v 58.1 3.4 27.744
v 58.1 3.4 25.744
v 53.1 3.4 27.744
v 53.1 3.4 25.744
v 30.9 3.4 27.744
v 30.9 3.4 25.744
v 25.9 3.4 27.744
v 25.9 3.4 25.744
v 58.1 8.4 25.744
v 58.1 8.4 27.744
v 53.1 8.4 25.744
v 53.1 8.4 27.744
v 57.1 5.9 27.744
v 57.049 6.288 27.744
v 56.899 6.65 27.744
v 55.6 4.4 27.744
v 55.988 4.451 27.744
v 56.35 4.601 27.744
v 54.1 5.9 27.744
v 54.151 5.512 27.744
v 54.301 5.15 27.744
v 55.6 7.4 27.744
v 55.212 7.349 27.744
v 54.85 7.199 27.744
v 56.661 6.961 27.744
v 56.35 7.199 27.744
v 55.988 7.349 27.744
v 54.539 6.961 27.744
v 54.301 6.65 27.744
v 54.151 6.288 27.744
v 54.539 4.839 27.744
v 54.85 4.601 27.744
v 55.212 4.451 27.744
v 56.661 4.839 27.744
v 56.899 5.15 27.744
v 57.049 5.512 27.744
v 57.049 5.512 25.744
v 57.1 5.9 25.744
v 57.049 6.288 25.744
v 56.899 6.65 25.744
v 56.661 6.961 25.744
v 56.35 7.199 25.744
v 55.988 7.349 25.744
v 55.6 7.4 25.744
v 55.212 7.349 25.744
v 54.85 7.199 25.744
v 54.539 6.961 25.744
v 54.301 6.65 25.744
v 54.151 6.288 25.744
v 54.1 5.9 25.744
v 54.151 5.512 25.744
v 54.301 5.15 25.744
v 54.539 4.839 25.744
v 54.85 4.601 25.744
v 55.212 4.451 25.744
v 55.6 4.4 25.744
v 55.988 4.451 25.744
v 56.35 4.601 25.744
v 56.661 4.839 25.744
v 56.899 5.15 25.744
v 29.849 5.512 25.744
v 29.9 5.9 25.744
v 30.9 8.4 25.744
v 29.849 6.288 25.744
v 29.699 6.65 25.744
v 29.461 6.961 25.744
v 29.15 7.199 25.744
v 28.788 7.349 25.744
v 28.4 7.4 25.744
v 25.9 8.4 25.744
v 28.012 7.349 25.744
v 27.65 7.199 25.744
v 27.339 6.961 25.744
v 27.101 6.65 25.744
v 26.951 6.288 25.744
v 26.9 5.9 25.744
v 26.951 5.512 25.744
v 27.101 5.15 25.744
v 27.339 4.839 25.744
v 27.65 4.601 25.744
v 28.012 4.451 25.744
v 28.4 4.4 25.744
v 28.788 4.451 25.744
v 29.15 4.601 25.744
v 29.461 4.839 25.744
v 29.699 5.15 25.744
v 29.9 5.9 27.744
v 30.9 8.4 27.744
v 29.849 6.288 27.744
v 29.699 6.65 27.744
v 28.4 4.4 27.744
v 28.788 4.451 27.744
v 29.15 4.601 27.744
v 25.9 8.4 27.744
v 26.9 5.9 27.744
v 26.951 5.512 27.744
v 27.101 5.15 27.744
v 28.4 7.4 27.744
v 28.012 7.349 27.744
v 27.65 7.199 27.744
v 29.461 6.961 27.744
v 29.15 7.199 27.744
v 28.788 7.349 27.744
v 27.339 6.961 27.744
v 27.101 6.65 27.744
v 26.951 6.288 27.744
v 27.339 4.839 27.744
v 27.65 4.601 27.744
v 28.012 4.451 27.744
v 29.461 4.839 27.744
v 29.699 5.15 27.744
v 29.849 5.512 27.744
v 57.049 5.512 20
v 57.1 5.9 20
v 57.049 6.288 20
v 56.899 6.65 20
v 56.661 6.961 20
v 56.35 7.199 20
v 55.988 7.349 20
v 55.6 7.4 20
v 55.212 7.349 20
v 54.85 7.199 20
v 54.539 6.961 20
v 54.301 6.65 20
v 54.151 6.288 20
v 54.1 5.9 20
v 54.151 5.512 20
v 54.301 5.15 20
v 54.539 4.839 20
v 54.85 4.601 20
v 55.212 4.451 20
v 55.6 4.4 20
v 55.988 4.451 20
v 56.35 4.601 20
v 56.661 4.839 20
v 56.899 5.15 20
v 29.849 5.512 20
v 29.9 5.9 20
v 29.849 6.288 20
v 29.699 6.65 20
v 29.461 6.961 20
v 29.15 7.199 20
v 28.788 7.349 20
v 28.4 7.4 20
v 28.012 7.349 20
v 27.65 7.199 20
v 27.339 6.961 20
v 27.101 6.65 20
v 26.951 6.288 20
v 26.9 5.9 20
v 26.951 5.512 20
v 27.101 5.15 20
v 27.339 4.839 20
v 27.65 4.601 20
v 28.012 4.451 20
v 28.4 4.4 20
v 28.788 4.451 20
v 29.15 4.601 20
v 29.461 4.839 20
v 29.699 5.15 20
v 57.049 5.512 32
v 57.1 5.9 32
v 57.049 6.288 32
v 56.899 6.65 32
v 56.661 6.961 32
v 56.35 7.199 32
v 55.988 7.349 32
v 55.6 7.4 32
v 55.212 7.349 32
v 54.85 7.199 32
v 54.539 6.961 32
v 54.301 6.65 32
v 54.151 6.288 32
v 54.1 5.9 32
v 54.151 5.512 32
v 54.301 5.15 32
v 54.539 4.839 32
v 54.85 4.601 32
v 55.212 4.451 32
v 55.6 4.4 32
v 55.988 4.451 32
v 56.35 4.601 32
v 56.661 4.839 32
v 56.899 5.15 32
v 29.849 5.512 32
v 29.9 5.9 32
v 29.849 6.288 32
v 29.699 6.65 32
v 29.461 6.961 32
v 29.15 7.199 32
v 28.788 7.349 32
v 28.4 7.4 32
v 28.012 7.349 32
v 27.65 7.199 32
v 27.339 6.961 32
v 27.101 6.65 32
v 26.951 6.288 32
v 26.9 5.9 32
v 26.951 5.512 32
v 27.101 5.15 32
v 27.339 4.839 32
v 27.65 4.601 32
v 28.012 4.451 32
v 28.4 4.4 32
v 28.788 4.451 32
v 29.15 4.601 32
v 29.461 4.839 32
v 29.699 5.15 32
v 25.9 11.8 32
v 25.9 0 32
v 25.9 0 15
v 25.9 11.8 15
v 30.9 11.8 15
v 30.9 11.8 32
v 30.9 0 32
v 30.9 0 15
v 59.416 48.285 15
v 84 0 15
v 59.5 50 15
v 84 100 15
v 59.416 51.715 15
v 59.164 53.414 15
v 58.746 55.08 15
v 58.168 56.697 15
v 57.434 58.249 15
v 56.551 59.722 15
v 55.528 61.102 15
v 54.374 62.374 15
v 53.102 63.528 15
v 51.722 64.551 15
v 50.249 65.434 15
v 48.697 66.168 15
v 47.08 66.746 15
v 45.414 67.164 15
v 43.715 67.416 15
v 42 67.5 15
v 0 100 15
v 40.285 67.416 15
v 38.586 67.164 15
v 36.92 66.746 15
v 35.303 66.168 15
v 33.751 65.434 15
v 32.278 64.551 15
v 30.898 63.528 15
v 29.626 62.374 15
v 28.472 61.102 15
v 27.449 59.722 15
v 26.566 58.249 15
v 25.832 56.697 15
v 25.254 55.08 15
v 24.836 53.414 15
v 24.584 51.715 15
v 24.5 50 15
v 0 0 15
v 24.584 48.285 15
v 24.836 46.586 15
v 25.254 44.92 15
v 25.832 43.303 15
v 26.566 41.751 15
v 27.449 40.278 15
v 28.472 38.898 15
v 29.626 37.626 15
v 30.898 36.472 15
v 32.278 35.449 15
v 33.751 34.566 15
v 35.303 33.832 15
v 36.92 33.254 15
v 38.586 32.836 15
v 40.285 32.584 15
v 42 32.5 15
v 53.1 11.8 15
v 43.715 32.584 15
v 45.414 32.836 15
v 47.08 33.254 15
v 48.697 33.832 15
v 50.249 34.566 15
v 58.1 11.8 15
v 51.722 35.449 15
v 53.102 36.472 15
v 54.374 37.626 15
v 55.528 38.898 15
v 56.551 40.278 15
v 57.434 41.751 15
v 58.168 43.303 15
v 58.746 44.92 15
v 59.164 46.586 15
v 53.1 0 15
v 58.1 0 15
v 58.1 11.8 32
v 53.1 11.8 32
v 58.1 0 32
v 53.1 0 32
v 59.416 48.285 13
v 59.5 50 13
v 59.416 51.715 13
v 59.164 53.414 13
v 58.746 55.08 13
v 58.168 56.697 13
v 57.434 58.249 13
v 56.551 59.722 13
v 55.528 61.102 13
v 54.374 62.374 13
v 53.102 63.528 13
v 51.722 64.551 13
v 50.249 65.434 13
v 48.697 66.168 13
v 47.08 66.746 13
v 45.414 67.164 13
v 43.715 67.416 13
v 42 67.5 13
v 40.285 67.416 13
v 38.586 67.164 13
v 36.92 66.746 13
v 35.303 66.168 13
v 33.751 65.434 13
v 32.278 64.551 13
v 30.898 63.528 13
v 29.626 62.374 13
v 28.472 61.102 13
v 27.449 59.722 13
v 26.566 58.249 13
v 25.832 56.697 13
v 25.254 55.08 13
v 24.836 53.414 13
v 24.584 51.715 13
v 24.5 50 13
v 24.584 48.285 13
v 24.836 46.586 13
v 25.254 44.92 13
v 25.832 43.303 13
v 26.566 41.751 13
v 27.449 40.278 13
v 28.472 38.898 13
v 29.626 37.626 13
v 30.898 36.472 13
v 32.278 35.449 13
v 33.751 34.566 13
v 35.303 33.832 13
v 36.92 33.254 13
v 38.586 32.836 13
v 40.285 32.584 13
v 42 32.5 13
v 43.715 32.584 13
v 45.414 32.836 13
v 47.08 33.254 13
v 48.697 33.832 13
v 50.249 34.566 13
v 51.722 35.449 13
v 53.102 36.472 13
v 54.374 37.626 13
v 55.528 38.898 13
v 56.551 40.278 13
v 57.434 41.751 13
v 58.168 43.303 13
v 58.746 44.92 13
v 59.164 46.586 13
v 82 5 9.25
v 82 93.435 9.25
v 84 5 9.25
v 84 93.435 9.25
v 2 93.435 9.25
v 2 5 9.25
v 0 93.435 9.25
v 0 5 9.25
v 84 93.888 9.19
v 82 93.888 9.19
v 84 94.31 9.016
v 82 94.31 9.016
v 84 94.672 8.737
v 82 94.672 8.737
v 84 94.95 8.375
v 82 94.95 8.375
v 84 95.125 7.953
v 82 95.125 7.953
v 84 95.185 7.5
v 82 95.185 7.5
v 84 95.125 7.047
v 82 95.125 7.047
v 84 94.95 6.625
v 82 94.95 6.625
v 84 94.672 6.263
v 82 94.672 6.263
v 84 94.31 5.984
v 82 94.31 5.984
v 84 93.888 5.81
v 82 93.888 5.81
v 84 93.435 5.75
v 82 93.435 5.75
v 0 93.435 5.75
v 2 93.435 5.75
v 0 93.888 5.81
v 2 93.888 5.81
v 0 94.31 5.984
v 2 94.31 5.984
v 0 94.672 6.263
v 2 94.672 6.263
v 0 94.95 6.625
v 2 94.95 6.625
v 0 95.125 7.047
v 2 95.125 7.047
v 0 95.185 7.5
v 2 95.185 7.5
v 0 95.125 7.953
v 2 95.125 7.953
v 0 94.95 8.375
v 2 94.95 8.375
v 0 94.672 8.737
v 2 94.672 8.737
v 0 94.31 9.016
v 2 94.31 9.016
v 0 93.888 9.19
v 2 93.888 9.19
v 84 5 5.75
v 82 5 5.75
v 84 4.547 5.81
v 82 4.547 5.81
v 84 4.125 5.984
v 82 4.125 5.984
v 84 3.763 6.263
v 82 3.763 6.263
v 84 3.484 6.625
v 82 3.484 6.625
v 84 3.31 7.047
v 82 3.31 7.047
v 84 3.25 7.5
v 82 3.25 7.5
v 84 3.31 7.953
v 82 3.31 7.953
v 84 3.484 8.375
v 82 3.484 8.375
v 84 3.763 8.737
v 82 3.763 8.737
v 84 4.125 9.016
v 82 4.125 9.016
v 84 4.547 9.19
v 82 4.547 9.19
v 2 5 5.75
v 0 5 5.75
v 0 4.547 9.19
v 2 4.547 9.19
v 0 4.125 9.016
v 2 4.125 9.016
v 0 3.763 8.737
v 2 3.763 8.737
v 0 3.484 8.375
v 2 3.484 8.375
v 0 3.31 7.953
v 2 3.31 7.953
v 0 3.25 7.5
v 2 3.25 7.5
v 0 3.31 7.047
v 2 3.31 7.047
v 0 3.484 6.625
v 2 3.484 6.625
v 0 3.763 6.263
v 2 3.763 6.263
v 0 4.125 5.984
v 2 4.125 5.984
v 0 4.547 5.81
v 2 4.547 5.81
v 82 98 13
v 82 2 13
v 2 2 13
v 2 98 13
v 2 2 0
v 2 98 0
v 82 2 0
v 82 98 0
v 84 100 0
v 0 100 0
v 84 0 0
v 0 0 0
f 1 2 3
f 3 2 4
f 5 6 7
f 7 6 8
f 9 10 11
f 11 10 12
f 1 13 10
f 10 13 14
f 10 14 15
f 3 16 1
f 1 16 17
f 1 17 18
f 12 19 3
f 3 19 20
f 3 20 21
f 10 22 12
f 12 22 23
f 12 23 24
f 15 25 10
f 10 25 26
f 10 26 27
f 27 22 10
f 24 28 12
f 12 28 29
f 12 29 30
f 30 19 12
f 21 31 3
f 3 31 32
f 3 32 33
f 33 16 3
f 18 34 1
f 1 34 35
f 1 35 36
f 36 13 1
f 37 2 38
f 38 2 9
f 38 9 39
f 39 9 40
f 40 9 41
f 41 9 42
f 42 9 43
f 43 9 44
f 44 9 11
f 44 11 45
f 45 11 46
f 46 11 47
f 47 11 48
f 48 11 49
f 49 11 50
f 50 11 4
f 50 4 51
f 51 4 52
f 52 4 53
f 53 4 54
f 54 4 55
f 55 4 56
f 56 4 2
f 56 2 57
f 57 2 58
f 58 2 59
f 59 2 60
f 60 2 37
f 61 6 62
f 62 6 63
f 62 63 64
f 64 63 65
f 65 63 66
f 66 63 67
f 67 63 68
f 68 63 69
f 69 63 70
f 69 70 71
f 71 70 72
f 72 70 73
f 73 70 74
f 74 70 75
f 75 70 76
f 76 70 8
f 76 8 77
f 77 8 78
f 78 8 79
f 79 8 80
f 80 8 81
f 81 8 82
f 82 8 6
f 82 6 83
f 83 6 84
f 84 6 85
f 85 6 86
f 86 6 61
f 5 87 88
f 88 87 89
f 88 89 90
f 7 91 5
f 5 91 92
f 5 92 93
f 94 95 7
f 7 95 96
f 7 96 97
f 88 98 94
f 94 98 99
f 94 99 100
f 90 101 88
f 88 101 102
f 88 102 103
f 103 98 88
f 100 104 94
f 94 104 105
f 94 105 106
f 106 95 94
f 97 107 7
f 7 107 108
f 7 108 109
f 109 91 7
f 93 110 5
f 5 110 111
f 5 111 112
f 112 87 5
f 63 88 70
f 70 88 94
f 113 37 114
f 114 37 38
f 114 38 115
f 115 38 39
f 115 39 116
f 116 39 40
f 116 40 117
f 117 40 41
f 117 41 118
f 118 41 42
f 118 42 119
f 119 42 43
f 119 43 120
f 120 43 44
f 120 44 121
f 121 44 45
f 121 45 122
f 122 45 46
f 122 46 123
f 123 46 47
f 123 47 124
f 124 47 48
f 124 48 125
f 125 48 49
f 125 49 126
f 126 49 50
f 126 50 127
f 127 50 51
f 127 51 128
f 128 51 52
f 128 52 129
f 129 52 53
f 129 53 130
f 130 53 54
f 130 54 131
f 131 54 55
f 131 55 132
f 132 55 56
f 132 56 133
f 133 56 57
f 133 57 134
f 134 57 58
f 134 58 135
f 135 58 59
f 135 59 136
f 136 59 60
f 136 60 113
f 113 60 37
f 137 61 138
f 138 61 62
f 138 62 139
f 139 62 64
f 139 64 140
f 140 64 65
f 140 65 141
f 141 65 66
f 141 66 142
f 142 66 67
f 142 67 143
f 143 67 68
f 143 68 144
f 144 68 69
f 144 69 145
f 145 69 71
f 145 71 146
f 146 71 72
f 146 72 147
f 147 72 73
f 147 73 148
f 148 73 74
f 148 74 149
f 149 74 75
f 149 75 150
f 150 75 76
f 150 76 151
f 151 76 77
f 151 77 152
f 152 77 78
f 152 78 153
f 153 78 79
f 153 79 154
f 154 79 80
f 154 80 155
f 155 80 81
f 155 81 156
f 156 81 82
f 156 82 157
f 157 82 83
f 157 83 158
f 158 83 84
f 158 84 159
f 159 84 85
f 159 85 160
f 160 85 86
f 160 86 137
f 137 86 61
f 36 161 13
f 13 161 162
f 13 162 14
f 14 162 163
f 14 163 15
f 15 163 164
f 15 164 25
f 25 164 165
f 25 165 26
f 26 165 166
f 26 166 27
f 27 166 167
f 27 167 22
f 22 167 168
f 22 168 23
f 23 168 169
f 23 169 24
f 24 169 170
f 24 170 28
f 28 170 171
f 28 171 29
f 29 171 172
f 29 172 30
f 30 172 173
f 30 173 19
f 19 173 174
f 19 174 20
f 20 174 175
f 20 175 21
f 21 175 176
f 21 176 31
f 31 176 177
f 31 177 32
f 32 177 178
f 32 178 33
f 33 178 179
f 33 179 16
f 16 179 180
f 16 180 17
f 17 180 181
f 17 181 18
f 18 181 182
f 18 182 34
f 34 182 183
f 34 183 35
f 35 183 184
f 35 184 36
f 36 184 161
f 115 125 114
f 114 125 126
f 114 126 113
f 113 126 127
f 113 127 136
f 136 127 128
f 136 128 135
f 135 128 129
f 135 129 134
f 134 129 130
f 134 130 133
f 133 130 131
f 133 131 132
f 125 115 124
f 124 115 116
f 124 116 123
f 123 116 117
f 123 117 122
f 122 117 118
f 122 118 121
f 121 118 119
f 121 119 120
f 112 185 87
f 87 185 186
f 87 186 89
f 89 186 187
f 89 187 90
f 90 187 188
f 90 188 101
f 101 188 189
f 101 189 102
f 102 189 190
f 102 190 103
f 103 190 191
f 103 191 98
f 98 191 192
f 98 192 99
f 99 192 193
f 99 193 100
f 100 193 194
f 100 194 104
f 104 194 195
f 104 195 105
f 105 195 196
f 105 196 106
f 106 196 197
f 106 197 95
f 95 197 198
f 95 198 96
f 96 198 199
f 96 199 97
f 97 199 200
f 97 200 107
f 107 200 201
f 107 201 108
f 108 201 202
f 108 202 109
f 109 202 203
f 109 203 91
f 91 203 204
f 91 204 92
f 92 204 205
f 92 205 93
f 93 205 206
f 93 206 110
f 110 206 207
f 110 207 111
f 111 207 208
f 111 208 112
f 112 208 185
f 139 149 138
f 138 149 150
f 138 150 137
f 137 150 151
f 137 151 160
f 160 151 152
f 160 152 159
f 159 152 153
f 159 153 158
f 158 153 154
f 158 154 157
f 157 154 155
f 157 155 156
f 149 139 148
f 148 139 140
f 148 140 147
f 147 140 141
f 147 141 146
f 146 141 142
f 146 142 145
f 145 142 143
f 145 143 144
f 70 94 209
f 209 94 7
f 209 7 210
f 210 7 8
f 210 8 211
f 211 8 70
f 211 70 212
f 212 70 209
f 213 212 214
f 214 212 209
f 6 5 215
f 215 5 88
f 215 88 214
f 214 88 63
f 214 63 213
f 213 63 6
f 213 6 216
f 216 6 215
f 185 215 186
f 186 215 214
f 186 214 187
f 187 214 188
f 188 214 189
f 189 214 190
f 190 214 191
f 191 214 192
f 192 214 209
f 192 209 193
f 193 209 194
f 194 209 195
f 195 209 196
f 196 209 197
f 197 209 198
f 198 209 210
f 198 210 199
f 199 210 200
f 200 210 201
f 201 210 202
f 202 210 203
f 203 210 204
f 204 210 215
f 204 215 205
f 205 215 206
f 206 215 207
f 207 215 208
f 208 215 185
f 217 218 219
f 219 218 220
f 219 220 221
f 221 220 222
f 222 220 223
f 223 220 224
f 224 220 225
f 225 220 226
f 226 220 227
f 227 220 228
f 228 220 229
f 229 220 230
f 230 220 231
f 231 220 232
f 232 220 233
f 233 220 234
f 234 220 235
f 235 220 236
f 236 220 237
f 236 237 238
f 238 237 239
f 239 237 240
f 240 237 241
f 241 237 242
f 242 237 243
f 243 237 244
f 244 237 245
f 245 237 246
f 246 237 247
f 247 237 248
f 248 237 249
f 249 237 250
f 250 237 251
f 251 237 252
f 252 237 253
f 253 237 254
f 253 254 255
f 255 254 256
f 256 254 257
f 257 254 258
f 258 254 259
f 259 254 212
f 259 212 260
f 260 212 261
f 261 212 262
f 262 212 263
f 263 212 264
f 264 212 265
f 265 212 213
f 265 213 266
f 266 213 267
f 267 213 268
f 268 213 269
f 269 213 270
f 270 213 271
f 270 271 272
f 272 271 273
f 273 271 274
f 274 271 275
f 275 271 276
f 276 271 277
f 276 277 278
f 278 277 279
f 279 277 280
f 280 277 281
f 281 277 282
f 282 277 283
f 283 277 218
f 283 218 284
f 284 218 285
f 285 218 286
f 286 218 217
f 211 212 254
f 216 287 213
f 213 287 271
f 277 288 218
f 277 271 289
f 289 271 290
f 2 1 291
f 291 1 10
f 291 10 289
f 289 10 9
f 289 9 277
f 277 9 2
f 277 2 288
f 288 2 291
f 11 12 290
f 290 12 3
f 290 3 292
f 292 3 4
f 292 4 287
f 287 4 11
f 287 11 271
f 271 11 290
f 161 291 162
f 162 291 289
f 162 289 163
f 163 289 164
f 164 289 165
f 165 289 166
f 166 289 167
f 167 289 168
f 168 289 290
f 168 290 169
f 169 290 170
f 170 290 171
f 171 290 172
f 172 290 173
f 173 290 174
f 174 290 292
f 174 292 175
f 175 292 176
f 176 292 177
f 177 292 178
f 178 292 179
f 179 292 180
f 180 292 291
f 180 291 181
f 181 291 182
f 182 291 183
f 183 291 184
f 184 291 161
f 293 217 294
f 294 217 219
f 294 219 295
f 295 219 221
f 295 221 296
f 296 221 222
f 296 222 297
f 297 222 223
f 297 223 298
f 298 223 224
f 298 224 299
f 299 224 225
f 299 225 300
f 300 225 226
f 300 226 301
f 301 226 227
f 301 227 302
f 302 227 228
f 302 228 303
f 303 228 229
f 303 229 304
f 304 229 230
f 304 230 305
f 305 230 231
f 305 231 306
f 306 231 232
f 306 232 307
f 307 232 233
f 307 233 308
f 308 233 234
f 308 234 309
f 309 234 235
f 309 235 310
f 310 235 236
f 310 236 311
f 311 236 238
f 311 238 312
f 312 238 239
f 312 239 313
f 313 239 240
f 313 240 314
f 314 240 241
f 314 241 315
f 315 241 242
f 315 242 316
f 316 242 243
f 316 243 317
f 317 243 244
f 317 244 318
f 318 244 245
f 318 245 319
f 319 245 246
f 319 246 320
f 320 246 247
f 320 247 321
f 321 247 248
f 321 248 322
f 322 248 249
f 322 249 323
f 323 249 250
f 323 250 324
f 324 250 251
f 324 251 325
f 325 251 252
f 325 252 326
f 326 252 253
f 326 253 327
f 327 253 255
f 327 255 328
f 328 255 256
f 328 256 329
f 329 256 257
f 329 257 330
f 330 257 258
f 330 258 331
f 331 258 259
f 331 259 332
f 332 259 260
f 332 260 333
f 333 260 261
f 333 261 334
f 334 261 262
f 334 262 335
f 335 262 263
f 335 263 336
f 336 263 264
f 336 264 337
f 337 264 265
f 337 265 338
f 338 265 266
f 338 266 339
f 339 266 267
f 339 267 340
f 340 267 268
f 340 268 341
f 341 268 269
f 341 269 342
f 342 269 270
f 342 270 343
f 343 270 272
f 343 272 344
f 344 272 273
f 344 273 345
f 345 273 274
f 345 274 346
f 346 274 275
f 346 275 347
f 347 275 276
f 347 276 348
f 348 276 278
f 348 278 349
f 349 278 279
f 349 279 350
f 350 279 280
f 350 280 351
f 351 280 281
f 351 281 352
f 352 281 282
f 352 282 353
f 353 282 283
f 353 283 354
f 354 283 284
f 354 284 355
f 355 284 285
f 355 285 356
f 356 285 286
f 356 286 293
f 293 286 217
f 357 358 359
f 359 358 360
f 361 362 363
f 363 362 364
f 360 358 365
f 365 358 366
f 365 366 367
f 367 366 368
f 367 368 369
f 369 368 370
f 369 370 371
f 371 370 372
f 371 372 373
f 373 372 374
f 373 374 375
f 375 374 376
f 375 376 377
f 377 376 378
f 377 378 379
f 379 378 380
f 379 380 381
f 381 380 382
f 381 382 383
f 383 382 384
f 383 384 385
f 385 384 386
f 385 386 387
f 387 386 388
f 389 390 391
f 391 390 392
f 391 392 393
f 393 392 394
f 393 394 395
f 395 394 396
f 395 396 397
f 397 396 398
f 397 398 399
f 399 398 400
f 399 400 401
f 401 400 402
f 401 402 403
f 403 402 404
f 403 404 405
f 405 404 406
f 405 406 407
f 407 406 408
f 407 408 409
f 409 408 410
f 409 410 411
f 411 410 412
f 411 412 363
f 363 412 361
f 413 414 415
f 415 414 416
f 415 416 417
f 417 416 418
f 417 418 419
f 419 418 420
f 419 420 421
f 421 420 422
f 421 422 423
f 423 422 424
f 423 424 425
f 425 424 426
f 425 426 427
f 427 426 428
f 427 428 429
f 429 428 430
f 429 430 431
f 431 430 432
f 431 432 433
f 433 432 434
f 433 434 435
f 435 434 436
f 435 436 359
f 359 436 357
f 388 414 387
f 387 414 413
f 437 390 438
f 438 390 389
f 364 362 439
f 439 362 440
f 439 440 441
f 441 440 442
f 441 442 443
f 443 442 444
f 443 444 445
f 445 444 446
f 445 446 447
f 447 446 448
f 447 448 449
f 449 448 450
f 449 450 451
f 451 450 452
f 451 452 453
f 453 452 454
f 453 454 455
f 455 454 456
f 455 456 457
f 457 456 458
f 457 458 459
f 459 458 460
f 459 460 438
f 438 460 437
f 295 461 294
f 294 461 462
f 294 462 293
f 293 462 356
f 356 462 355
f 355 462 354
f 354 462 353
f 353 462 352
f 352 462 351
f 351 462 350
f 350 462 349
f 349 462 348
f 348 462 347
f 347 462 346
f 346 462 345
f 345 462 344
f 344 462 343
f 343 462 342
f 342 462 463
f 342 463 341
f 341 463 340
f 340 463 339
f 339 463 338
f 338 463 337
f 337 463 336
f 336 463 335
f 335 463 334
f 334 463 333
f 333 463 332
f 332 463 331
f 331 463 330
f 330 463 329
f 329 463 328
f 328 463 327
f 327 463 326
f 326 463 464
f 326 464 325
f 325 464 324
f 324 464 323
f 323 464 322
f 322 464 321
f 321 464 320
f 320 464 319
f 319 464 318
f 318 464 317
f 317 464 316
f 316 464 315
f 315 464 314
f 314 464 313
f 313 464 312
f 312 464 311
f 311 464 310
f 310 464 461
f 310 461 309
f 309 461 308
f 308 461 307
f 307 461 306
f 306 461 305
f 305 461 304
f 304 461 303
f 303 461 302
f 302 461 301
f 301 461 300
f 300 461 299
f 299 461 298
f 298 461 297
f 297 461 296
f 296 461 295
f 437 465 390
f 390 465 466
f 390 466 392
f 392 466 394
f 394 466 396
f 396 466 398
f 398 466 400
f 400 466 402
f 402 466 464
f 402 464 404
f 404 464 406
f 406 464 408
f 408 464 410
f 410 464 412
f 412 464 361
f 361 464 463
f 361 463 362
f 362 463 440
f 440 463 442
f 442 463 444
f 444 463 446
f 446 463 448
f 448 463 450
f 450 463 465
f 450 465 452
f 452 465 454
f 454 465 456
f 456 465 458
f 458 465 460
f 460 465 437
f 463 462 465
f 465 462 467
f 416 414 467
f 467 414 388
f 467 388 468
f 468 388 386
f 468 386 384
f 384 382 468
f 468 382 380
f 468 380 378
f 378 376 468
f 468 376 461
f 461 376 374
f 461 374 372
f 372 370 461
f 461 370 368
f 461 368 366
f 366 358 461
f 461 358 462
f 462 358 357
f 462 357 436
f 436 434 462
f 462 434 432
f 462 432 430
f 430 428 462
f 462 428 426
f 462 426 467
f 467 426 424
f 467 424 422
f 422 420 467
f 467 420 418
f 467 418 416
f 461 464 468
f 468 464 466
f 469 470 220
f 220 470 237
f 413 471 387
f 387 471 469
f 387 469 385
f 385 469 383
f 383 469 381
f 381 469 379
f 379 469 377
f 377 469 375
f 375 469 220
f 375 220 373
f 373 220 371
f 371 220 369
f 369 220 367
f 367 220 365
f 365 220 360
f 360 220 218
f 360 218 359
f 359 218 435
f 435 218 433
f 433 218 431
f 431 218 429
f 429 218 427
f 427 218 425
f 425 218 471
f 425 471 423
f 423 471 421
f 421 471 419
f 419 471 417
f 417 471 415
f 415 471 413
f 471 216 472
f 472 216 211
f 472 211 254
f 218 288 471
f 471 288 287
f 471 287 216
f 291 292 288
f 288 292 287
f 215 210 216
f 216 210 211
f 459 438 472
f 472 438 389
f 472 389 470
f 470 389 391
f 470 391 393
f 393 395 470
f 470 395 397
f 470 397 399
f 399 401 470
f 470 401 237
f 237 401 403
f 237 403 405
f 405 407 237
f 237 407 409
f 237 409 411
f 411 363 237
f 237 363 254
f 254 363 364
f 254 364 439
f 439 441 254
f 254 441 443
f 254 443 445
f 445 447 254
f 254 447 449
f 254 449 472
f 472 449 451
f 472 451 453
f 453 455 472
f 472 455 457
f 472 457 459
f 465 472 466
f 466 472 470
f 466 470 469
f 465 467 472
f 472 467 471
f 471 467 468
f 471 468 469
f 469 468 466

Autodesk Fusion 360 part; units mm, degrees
sketch "Sketch1" plane through (0, 0, 0) normal (0, 0, 1) x (1, 0, 0)
  line L0 (0, 0) -> (84, 0)
  line L1 (84, 0) -> (84, 100)
  line L2 (84, 100) -> (0, 100)
  line L3 (0, 100) -> (0, 0)
  dimension "d1" = 84
  dimension "d2" = 100
extrude "Extrude1" add sketch "Sketch1" along normal blind 15
shell "Shell1" thickness 2 removed faces 1 at (28, 66.6667, 0)
sketch "Sketch2" plane through (84, 0, 0) normal (1, 0, 0) x (0, 1, 0)
  line L0 (0, 0) -> (100, 0)
  line L1 (100, 0) -> (100, 15)
  line L2 (100, 15) -> (0, 15)
  line L3 (0, 15) -> (0, 0)
  line L4 (0, 7.5) -> (5, 7.5)
  line L5 (100, 7.5) -> (98.4347, 7.5)
  line L6 (98.4347, 7.5) -> (93.4347, 7.5)
  circle A0 centre (5, 7.5) radius 1.75
  circle A1 centre (93.4347, 7.5) radius 1.75
  line L7 (5, 9.25) -> (93.4347, 9.25)
  line L8 (5, 5.75) -> (93.4347, 5.75)
  dimension "d6" = 5
  dimension "d7" = 5
  dimension "d8" = 3.5
  dimension "d9" = 3.5
extrude "Extrude2" cut sketch "Sketch2" against normal blind 225 contours A0 | A0 A1 L7 L8 | A1
sketch "Sketch3" plane through (0, 0, 15) normal (0, 0, 1) x (-1, 0, 0)
  line L0 (0, -100) -> (0, 0)
  line L1 (0, 0) -> (-84, 0)
  line L2 (-84, 0) -> (-84, -100)
  line L3 (-84, -100) -> (0, -100)
  circle A0 centre (-42, -50) radius 17.5
  dimension "d12" = 35
extrude "Extrude3" cut sketch "Sketch3" against normal blind 30 contours A0
sketch "Sketch4" plane through (0, 0, 15) normal (0, 0, 1) x (-1, 0, 0)
  circle A0 centre (-42, -50) radius 17.5
  line L0 (0, -100) -> (0, 0)
  line L1 (0, 0) -> (-84, 0)
  line L2 (-84, 0) -> (-84, -100)
  line L3 (-84, -100) -> (0, -100)
  line L4 (-42, 0) -> (-42, -10)
  line L5 (-42, 0) -> (-58.1, 0)
  line L6 (-58.1, 0) -> (-58.1, -11.8)
  line L7 (-58.1, -11.8) -> (-25.9, -11.8)
  line L8 (-25.9, -11.8) -> (-25.9, 0)
  line L9 (-25.9, 0) -> (-30.9, 0)
  line L10 (-30.9, 0) -> (-30.9, -11.8)
  line L11 (-58.1, 0) -> (-58.1, -11.8)
  line L12 (-58.1, -11.8) -> (-53.1, -11.8)
  line L13 (-53.1, -11.8) -> (-53.1, 0)
  dimension "d15" = 16.1
  dimension "d16" = 11.8
  dimension "d17" = 32.2
  dimension "d18" = 5
  dimension "d19" = 5
extrude "Extrude4" add sketch "Sketch4" along normal blind 17 contours L1 L7 L8 L9 L10 | L1 L5 L6 L7 L11 L12 L13
sketch "Sketch5" plane through (0, 0, 32) normal (0, 0, 1) x (-1, 0, 0)
  line L0 (-30.9, 0) -> (-30.9, -11.8)
  line L1 (-30.9, -11.8) -> (-25.9, -11.8)
  line L2 (-25.9, -11.8) -> (-25.9, 0)
  line L3 (-25.9, 0) -> (-30.9, 0)
  circle A0 centre (-28.4, -5.9) radius 1.5
  dimension "d22" = 3
sketch "Sketch6" plane through (0, 0, 32) normal (0, 0, 1) x (-1, 0, 0)
  line L0 (-53.1, -11.8) -> (-53.1, 0)
  line L1 (-53.1, 0) -> (-58.1, 0)
  line L2 (-58.1, 0) -> (-58.1, -11.8)
  line L3 (-58.1, -11.8) -> (-53.1, -11.8)
  circle A0 centre (-55.6, -5.9) radius 1.5
  dimension "d23" = 3
extrude "Extrude5" cut sketch "Sketch6" sketch "Sketch5" against normal blind 12 contours A0 of sketch 2 contours A0
sketch "Sketch7" plane through (30.9, 0, 0) normal (1, 0, 0) x (0, 1, 0)
  line L0 (0, 15) -> (11.8, 15)
  line L1 (11.8, 15) -> (11.8, 32)
  line L2 (11.8, 32) -> (0, 32)
  line L3 (0, 32) -> (0, 15)
  line L4 (8.4, 27.7438) -> (3.4, 27.7438)
  line L5 (3.4, 27.7438) -> (3.4, 25.7438)
  line L6 (3.4, 25.7438) -> (8.4, 25.7438)
  line L7 (8.4, 25.7438) -> (8.4, 27.7438)
  line L8 (8.4, 27.7438) -> (3.4, 25.7438) construction
  line L9 (3.4, 27.7438) -> (8.4, 25.7438) construction
  point P0 (5.9, 26.7438)
  dimension "d26" = 5
  dimension "d27" = 2
extrude "Extrude6" cut sketch "Sketch7" along normal blind -5 and the other way blind -34 contours L4 L5 L6 L7
